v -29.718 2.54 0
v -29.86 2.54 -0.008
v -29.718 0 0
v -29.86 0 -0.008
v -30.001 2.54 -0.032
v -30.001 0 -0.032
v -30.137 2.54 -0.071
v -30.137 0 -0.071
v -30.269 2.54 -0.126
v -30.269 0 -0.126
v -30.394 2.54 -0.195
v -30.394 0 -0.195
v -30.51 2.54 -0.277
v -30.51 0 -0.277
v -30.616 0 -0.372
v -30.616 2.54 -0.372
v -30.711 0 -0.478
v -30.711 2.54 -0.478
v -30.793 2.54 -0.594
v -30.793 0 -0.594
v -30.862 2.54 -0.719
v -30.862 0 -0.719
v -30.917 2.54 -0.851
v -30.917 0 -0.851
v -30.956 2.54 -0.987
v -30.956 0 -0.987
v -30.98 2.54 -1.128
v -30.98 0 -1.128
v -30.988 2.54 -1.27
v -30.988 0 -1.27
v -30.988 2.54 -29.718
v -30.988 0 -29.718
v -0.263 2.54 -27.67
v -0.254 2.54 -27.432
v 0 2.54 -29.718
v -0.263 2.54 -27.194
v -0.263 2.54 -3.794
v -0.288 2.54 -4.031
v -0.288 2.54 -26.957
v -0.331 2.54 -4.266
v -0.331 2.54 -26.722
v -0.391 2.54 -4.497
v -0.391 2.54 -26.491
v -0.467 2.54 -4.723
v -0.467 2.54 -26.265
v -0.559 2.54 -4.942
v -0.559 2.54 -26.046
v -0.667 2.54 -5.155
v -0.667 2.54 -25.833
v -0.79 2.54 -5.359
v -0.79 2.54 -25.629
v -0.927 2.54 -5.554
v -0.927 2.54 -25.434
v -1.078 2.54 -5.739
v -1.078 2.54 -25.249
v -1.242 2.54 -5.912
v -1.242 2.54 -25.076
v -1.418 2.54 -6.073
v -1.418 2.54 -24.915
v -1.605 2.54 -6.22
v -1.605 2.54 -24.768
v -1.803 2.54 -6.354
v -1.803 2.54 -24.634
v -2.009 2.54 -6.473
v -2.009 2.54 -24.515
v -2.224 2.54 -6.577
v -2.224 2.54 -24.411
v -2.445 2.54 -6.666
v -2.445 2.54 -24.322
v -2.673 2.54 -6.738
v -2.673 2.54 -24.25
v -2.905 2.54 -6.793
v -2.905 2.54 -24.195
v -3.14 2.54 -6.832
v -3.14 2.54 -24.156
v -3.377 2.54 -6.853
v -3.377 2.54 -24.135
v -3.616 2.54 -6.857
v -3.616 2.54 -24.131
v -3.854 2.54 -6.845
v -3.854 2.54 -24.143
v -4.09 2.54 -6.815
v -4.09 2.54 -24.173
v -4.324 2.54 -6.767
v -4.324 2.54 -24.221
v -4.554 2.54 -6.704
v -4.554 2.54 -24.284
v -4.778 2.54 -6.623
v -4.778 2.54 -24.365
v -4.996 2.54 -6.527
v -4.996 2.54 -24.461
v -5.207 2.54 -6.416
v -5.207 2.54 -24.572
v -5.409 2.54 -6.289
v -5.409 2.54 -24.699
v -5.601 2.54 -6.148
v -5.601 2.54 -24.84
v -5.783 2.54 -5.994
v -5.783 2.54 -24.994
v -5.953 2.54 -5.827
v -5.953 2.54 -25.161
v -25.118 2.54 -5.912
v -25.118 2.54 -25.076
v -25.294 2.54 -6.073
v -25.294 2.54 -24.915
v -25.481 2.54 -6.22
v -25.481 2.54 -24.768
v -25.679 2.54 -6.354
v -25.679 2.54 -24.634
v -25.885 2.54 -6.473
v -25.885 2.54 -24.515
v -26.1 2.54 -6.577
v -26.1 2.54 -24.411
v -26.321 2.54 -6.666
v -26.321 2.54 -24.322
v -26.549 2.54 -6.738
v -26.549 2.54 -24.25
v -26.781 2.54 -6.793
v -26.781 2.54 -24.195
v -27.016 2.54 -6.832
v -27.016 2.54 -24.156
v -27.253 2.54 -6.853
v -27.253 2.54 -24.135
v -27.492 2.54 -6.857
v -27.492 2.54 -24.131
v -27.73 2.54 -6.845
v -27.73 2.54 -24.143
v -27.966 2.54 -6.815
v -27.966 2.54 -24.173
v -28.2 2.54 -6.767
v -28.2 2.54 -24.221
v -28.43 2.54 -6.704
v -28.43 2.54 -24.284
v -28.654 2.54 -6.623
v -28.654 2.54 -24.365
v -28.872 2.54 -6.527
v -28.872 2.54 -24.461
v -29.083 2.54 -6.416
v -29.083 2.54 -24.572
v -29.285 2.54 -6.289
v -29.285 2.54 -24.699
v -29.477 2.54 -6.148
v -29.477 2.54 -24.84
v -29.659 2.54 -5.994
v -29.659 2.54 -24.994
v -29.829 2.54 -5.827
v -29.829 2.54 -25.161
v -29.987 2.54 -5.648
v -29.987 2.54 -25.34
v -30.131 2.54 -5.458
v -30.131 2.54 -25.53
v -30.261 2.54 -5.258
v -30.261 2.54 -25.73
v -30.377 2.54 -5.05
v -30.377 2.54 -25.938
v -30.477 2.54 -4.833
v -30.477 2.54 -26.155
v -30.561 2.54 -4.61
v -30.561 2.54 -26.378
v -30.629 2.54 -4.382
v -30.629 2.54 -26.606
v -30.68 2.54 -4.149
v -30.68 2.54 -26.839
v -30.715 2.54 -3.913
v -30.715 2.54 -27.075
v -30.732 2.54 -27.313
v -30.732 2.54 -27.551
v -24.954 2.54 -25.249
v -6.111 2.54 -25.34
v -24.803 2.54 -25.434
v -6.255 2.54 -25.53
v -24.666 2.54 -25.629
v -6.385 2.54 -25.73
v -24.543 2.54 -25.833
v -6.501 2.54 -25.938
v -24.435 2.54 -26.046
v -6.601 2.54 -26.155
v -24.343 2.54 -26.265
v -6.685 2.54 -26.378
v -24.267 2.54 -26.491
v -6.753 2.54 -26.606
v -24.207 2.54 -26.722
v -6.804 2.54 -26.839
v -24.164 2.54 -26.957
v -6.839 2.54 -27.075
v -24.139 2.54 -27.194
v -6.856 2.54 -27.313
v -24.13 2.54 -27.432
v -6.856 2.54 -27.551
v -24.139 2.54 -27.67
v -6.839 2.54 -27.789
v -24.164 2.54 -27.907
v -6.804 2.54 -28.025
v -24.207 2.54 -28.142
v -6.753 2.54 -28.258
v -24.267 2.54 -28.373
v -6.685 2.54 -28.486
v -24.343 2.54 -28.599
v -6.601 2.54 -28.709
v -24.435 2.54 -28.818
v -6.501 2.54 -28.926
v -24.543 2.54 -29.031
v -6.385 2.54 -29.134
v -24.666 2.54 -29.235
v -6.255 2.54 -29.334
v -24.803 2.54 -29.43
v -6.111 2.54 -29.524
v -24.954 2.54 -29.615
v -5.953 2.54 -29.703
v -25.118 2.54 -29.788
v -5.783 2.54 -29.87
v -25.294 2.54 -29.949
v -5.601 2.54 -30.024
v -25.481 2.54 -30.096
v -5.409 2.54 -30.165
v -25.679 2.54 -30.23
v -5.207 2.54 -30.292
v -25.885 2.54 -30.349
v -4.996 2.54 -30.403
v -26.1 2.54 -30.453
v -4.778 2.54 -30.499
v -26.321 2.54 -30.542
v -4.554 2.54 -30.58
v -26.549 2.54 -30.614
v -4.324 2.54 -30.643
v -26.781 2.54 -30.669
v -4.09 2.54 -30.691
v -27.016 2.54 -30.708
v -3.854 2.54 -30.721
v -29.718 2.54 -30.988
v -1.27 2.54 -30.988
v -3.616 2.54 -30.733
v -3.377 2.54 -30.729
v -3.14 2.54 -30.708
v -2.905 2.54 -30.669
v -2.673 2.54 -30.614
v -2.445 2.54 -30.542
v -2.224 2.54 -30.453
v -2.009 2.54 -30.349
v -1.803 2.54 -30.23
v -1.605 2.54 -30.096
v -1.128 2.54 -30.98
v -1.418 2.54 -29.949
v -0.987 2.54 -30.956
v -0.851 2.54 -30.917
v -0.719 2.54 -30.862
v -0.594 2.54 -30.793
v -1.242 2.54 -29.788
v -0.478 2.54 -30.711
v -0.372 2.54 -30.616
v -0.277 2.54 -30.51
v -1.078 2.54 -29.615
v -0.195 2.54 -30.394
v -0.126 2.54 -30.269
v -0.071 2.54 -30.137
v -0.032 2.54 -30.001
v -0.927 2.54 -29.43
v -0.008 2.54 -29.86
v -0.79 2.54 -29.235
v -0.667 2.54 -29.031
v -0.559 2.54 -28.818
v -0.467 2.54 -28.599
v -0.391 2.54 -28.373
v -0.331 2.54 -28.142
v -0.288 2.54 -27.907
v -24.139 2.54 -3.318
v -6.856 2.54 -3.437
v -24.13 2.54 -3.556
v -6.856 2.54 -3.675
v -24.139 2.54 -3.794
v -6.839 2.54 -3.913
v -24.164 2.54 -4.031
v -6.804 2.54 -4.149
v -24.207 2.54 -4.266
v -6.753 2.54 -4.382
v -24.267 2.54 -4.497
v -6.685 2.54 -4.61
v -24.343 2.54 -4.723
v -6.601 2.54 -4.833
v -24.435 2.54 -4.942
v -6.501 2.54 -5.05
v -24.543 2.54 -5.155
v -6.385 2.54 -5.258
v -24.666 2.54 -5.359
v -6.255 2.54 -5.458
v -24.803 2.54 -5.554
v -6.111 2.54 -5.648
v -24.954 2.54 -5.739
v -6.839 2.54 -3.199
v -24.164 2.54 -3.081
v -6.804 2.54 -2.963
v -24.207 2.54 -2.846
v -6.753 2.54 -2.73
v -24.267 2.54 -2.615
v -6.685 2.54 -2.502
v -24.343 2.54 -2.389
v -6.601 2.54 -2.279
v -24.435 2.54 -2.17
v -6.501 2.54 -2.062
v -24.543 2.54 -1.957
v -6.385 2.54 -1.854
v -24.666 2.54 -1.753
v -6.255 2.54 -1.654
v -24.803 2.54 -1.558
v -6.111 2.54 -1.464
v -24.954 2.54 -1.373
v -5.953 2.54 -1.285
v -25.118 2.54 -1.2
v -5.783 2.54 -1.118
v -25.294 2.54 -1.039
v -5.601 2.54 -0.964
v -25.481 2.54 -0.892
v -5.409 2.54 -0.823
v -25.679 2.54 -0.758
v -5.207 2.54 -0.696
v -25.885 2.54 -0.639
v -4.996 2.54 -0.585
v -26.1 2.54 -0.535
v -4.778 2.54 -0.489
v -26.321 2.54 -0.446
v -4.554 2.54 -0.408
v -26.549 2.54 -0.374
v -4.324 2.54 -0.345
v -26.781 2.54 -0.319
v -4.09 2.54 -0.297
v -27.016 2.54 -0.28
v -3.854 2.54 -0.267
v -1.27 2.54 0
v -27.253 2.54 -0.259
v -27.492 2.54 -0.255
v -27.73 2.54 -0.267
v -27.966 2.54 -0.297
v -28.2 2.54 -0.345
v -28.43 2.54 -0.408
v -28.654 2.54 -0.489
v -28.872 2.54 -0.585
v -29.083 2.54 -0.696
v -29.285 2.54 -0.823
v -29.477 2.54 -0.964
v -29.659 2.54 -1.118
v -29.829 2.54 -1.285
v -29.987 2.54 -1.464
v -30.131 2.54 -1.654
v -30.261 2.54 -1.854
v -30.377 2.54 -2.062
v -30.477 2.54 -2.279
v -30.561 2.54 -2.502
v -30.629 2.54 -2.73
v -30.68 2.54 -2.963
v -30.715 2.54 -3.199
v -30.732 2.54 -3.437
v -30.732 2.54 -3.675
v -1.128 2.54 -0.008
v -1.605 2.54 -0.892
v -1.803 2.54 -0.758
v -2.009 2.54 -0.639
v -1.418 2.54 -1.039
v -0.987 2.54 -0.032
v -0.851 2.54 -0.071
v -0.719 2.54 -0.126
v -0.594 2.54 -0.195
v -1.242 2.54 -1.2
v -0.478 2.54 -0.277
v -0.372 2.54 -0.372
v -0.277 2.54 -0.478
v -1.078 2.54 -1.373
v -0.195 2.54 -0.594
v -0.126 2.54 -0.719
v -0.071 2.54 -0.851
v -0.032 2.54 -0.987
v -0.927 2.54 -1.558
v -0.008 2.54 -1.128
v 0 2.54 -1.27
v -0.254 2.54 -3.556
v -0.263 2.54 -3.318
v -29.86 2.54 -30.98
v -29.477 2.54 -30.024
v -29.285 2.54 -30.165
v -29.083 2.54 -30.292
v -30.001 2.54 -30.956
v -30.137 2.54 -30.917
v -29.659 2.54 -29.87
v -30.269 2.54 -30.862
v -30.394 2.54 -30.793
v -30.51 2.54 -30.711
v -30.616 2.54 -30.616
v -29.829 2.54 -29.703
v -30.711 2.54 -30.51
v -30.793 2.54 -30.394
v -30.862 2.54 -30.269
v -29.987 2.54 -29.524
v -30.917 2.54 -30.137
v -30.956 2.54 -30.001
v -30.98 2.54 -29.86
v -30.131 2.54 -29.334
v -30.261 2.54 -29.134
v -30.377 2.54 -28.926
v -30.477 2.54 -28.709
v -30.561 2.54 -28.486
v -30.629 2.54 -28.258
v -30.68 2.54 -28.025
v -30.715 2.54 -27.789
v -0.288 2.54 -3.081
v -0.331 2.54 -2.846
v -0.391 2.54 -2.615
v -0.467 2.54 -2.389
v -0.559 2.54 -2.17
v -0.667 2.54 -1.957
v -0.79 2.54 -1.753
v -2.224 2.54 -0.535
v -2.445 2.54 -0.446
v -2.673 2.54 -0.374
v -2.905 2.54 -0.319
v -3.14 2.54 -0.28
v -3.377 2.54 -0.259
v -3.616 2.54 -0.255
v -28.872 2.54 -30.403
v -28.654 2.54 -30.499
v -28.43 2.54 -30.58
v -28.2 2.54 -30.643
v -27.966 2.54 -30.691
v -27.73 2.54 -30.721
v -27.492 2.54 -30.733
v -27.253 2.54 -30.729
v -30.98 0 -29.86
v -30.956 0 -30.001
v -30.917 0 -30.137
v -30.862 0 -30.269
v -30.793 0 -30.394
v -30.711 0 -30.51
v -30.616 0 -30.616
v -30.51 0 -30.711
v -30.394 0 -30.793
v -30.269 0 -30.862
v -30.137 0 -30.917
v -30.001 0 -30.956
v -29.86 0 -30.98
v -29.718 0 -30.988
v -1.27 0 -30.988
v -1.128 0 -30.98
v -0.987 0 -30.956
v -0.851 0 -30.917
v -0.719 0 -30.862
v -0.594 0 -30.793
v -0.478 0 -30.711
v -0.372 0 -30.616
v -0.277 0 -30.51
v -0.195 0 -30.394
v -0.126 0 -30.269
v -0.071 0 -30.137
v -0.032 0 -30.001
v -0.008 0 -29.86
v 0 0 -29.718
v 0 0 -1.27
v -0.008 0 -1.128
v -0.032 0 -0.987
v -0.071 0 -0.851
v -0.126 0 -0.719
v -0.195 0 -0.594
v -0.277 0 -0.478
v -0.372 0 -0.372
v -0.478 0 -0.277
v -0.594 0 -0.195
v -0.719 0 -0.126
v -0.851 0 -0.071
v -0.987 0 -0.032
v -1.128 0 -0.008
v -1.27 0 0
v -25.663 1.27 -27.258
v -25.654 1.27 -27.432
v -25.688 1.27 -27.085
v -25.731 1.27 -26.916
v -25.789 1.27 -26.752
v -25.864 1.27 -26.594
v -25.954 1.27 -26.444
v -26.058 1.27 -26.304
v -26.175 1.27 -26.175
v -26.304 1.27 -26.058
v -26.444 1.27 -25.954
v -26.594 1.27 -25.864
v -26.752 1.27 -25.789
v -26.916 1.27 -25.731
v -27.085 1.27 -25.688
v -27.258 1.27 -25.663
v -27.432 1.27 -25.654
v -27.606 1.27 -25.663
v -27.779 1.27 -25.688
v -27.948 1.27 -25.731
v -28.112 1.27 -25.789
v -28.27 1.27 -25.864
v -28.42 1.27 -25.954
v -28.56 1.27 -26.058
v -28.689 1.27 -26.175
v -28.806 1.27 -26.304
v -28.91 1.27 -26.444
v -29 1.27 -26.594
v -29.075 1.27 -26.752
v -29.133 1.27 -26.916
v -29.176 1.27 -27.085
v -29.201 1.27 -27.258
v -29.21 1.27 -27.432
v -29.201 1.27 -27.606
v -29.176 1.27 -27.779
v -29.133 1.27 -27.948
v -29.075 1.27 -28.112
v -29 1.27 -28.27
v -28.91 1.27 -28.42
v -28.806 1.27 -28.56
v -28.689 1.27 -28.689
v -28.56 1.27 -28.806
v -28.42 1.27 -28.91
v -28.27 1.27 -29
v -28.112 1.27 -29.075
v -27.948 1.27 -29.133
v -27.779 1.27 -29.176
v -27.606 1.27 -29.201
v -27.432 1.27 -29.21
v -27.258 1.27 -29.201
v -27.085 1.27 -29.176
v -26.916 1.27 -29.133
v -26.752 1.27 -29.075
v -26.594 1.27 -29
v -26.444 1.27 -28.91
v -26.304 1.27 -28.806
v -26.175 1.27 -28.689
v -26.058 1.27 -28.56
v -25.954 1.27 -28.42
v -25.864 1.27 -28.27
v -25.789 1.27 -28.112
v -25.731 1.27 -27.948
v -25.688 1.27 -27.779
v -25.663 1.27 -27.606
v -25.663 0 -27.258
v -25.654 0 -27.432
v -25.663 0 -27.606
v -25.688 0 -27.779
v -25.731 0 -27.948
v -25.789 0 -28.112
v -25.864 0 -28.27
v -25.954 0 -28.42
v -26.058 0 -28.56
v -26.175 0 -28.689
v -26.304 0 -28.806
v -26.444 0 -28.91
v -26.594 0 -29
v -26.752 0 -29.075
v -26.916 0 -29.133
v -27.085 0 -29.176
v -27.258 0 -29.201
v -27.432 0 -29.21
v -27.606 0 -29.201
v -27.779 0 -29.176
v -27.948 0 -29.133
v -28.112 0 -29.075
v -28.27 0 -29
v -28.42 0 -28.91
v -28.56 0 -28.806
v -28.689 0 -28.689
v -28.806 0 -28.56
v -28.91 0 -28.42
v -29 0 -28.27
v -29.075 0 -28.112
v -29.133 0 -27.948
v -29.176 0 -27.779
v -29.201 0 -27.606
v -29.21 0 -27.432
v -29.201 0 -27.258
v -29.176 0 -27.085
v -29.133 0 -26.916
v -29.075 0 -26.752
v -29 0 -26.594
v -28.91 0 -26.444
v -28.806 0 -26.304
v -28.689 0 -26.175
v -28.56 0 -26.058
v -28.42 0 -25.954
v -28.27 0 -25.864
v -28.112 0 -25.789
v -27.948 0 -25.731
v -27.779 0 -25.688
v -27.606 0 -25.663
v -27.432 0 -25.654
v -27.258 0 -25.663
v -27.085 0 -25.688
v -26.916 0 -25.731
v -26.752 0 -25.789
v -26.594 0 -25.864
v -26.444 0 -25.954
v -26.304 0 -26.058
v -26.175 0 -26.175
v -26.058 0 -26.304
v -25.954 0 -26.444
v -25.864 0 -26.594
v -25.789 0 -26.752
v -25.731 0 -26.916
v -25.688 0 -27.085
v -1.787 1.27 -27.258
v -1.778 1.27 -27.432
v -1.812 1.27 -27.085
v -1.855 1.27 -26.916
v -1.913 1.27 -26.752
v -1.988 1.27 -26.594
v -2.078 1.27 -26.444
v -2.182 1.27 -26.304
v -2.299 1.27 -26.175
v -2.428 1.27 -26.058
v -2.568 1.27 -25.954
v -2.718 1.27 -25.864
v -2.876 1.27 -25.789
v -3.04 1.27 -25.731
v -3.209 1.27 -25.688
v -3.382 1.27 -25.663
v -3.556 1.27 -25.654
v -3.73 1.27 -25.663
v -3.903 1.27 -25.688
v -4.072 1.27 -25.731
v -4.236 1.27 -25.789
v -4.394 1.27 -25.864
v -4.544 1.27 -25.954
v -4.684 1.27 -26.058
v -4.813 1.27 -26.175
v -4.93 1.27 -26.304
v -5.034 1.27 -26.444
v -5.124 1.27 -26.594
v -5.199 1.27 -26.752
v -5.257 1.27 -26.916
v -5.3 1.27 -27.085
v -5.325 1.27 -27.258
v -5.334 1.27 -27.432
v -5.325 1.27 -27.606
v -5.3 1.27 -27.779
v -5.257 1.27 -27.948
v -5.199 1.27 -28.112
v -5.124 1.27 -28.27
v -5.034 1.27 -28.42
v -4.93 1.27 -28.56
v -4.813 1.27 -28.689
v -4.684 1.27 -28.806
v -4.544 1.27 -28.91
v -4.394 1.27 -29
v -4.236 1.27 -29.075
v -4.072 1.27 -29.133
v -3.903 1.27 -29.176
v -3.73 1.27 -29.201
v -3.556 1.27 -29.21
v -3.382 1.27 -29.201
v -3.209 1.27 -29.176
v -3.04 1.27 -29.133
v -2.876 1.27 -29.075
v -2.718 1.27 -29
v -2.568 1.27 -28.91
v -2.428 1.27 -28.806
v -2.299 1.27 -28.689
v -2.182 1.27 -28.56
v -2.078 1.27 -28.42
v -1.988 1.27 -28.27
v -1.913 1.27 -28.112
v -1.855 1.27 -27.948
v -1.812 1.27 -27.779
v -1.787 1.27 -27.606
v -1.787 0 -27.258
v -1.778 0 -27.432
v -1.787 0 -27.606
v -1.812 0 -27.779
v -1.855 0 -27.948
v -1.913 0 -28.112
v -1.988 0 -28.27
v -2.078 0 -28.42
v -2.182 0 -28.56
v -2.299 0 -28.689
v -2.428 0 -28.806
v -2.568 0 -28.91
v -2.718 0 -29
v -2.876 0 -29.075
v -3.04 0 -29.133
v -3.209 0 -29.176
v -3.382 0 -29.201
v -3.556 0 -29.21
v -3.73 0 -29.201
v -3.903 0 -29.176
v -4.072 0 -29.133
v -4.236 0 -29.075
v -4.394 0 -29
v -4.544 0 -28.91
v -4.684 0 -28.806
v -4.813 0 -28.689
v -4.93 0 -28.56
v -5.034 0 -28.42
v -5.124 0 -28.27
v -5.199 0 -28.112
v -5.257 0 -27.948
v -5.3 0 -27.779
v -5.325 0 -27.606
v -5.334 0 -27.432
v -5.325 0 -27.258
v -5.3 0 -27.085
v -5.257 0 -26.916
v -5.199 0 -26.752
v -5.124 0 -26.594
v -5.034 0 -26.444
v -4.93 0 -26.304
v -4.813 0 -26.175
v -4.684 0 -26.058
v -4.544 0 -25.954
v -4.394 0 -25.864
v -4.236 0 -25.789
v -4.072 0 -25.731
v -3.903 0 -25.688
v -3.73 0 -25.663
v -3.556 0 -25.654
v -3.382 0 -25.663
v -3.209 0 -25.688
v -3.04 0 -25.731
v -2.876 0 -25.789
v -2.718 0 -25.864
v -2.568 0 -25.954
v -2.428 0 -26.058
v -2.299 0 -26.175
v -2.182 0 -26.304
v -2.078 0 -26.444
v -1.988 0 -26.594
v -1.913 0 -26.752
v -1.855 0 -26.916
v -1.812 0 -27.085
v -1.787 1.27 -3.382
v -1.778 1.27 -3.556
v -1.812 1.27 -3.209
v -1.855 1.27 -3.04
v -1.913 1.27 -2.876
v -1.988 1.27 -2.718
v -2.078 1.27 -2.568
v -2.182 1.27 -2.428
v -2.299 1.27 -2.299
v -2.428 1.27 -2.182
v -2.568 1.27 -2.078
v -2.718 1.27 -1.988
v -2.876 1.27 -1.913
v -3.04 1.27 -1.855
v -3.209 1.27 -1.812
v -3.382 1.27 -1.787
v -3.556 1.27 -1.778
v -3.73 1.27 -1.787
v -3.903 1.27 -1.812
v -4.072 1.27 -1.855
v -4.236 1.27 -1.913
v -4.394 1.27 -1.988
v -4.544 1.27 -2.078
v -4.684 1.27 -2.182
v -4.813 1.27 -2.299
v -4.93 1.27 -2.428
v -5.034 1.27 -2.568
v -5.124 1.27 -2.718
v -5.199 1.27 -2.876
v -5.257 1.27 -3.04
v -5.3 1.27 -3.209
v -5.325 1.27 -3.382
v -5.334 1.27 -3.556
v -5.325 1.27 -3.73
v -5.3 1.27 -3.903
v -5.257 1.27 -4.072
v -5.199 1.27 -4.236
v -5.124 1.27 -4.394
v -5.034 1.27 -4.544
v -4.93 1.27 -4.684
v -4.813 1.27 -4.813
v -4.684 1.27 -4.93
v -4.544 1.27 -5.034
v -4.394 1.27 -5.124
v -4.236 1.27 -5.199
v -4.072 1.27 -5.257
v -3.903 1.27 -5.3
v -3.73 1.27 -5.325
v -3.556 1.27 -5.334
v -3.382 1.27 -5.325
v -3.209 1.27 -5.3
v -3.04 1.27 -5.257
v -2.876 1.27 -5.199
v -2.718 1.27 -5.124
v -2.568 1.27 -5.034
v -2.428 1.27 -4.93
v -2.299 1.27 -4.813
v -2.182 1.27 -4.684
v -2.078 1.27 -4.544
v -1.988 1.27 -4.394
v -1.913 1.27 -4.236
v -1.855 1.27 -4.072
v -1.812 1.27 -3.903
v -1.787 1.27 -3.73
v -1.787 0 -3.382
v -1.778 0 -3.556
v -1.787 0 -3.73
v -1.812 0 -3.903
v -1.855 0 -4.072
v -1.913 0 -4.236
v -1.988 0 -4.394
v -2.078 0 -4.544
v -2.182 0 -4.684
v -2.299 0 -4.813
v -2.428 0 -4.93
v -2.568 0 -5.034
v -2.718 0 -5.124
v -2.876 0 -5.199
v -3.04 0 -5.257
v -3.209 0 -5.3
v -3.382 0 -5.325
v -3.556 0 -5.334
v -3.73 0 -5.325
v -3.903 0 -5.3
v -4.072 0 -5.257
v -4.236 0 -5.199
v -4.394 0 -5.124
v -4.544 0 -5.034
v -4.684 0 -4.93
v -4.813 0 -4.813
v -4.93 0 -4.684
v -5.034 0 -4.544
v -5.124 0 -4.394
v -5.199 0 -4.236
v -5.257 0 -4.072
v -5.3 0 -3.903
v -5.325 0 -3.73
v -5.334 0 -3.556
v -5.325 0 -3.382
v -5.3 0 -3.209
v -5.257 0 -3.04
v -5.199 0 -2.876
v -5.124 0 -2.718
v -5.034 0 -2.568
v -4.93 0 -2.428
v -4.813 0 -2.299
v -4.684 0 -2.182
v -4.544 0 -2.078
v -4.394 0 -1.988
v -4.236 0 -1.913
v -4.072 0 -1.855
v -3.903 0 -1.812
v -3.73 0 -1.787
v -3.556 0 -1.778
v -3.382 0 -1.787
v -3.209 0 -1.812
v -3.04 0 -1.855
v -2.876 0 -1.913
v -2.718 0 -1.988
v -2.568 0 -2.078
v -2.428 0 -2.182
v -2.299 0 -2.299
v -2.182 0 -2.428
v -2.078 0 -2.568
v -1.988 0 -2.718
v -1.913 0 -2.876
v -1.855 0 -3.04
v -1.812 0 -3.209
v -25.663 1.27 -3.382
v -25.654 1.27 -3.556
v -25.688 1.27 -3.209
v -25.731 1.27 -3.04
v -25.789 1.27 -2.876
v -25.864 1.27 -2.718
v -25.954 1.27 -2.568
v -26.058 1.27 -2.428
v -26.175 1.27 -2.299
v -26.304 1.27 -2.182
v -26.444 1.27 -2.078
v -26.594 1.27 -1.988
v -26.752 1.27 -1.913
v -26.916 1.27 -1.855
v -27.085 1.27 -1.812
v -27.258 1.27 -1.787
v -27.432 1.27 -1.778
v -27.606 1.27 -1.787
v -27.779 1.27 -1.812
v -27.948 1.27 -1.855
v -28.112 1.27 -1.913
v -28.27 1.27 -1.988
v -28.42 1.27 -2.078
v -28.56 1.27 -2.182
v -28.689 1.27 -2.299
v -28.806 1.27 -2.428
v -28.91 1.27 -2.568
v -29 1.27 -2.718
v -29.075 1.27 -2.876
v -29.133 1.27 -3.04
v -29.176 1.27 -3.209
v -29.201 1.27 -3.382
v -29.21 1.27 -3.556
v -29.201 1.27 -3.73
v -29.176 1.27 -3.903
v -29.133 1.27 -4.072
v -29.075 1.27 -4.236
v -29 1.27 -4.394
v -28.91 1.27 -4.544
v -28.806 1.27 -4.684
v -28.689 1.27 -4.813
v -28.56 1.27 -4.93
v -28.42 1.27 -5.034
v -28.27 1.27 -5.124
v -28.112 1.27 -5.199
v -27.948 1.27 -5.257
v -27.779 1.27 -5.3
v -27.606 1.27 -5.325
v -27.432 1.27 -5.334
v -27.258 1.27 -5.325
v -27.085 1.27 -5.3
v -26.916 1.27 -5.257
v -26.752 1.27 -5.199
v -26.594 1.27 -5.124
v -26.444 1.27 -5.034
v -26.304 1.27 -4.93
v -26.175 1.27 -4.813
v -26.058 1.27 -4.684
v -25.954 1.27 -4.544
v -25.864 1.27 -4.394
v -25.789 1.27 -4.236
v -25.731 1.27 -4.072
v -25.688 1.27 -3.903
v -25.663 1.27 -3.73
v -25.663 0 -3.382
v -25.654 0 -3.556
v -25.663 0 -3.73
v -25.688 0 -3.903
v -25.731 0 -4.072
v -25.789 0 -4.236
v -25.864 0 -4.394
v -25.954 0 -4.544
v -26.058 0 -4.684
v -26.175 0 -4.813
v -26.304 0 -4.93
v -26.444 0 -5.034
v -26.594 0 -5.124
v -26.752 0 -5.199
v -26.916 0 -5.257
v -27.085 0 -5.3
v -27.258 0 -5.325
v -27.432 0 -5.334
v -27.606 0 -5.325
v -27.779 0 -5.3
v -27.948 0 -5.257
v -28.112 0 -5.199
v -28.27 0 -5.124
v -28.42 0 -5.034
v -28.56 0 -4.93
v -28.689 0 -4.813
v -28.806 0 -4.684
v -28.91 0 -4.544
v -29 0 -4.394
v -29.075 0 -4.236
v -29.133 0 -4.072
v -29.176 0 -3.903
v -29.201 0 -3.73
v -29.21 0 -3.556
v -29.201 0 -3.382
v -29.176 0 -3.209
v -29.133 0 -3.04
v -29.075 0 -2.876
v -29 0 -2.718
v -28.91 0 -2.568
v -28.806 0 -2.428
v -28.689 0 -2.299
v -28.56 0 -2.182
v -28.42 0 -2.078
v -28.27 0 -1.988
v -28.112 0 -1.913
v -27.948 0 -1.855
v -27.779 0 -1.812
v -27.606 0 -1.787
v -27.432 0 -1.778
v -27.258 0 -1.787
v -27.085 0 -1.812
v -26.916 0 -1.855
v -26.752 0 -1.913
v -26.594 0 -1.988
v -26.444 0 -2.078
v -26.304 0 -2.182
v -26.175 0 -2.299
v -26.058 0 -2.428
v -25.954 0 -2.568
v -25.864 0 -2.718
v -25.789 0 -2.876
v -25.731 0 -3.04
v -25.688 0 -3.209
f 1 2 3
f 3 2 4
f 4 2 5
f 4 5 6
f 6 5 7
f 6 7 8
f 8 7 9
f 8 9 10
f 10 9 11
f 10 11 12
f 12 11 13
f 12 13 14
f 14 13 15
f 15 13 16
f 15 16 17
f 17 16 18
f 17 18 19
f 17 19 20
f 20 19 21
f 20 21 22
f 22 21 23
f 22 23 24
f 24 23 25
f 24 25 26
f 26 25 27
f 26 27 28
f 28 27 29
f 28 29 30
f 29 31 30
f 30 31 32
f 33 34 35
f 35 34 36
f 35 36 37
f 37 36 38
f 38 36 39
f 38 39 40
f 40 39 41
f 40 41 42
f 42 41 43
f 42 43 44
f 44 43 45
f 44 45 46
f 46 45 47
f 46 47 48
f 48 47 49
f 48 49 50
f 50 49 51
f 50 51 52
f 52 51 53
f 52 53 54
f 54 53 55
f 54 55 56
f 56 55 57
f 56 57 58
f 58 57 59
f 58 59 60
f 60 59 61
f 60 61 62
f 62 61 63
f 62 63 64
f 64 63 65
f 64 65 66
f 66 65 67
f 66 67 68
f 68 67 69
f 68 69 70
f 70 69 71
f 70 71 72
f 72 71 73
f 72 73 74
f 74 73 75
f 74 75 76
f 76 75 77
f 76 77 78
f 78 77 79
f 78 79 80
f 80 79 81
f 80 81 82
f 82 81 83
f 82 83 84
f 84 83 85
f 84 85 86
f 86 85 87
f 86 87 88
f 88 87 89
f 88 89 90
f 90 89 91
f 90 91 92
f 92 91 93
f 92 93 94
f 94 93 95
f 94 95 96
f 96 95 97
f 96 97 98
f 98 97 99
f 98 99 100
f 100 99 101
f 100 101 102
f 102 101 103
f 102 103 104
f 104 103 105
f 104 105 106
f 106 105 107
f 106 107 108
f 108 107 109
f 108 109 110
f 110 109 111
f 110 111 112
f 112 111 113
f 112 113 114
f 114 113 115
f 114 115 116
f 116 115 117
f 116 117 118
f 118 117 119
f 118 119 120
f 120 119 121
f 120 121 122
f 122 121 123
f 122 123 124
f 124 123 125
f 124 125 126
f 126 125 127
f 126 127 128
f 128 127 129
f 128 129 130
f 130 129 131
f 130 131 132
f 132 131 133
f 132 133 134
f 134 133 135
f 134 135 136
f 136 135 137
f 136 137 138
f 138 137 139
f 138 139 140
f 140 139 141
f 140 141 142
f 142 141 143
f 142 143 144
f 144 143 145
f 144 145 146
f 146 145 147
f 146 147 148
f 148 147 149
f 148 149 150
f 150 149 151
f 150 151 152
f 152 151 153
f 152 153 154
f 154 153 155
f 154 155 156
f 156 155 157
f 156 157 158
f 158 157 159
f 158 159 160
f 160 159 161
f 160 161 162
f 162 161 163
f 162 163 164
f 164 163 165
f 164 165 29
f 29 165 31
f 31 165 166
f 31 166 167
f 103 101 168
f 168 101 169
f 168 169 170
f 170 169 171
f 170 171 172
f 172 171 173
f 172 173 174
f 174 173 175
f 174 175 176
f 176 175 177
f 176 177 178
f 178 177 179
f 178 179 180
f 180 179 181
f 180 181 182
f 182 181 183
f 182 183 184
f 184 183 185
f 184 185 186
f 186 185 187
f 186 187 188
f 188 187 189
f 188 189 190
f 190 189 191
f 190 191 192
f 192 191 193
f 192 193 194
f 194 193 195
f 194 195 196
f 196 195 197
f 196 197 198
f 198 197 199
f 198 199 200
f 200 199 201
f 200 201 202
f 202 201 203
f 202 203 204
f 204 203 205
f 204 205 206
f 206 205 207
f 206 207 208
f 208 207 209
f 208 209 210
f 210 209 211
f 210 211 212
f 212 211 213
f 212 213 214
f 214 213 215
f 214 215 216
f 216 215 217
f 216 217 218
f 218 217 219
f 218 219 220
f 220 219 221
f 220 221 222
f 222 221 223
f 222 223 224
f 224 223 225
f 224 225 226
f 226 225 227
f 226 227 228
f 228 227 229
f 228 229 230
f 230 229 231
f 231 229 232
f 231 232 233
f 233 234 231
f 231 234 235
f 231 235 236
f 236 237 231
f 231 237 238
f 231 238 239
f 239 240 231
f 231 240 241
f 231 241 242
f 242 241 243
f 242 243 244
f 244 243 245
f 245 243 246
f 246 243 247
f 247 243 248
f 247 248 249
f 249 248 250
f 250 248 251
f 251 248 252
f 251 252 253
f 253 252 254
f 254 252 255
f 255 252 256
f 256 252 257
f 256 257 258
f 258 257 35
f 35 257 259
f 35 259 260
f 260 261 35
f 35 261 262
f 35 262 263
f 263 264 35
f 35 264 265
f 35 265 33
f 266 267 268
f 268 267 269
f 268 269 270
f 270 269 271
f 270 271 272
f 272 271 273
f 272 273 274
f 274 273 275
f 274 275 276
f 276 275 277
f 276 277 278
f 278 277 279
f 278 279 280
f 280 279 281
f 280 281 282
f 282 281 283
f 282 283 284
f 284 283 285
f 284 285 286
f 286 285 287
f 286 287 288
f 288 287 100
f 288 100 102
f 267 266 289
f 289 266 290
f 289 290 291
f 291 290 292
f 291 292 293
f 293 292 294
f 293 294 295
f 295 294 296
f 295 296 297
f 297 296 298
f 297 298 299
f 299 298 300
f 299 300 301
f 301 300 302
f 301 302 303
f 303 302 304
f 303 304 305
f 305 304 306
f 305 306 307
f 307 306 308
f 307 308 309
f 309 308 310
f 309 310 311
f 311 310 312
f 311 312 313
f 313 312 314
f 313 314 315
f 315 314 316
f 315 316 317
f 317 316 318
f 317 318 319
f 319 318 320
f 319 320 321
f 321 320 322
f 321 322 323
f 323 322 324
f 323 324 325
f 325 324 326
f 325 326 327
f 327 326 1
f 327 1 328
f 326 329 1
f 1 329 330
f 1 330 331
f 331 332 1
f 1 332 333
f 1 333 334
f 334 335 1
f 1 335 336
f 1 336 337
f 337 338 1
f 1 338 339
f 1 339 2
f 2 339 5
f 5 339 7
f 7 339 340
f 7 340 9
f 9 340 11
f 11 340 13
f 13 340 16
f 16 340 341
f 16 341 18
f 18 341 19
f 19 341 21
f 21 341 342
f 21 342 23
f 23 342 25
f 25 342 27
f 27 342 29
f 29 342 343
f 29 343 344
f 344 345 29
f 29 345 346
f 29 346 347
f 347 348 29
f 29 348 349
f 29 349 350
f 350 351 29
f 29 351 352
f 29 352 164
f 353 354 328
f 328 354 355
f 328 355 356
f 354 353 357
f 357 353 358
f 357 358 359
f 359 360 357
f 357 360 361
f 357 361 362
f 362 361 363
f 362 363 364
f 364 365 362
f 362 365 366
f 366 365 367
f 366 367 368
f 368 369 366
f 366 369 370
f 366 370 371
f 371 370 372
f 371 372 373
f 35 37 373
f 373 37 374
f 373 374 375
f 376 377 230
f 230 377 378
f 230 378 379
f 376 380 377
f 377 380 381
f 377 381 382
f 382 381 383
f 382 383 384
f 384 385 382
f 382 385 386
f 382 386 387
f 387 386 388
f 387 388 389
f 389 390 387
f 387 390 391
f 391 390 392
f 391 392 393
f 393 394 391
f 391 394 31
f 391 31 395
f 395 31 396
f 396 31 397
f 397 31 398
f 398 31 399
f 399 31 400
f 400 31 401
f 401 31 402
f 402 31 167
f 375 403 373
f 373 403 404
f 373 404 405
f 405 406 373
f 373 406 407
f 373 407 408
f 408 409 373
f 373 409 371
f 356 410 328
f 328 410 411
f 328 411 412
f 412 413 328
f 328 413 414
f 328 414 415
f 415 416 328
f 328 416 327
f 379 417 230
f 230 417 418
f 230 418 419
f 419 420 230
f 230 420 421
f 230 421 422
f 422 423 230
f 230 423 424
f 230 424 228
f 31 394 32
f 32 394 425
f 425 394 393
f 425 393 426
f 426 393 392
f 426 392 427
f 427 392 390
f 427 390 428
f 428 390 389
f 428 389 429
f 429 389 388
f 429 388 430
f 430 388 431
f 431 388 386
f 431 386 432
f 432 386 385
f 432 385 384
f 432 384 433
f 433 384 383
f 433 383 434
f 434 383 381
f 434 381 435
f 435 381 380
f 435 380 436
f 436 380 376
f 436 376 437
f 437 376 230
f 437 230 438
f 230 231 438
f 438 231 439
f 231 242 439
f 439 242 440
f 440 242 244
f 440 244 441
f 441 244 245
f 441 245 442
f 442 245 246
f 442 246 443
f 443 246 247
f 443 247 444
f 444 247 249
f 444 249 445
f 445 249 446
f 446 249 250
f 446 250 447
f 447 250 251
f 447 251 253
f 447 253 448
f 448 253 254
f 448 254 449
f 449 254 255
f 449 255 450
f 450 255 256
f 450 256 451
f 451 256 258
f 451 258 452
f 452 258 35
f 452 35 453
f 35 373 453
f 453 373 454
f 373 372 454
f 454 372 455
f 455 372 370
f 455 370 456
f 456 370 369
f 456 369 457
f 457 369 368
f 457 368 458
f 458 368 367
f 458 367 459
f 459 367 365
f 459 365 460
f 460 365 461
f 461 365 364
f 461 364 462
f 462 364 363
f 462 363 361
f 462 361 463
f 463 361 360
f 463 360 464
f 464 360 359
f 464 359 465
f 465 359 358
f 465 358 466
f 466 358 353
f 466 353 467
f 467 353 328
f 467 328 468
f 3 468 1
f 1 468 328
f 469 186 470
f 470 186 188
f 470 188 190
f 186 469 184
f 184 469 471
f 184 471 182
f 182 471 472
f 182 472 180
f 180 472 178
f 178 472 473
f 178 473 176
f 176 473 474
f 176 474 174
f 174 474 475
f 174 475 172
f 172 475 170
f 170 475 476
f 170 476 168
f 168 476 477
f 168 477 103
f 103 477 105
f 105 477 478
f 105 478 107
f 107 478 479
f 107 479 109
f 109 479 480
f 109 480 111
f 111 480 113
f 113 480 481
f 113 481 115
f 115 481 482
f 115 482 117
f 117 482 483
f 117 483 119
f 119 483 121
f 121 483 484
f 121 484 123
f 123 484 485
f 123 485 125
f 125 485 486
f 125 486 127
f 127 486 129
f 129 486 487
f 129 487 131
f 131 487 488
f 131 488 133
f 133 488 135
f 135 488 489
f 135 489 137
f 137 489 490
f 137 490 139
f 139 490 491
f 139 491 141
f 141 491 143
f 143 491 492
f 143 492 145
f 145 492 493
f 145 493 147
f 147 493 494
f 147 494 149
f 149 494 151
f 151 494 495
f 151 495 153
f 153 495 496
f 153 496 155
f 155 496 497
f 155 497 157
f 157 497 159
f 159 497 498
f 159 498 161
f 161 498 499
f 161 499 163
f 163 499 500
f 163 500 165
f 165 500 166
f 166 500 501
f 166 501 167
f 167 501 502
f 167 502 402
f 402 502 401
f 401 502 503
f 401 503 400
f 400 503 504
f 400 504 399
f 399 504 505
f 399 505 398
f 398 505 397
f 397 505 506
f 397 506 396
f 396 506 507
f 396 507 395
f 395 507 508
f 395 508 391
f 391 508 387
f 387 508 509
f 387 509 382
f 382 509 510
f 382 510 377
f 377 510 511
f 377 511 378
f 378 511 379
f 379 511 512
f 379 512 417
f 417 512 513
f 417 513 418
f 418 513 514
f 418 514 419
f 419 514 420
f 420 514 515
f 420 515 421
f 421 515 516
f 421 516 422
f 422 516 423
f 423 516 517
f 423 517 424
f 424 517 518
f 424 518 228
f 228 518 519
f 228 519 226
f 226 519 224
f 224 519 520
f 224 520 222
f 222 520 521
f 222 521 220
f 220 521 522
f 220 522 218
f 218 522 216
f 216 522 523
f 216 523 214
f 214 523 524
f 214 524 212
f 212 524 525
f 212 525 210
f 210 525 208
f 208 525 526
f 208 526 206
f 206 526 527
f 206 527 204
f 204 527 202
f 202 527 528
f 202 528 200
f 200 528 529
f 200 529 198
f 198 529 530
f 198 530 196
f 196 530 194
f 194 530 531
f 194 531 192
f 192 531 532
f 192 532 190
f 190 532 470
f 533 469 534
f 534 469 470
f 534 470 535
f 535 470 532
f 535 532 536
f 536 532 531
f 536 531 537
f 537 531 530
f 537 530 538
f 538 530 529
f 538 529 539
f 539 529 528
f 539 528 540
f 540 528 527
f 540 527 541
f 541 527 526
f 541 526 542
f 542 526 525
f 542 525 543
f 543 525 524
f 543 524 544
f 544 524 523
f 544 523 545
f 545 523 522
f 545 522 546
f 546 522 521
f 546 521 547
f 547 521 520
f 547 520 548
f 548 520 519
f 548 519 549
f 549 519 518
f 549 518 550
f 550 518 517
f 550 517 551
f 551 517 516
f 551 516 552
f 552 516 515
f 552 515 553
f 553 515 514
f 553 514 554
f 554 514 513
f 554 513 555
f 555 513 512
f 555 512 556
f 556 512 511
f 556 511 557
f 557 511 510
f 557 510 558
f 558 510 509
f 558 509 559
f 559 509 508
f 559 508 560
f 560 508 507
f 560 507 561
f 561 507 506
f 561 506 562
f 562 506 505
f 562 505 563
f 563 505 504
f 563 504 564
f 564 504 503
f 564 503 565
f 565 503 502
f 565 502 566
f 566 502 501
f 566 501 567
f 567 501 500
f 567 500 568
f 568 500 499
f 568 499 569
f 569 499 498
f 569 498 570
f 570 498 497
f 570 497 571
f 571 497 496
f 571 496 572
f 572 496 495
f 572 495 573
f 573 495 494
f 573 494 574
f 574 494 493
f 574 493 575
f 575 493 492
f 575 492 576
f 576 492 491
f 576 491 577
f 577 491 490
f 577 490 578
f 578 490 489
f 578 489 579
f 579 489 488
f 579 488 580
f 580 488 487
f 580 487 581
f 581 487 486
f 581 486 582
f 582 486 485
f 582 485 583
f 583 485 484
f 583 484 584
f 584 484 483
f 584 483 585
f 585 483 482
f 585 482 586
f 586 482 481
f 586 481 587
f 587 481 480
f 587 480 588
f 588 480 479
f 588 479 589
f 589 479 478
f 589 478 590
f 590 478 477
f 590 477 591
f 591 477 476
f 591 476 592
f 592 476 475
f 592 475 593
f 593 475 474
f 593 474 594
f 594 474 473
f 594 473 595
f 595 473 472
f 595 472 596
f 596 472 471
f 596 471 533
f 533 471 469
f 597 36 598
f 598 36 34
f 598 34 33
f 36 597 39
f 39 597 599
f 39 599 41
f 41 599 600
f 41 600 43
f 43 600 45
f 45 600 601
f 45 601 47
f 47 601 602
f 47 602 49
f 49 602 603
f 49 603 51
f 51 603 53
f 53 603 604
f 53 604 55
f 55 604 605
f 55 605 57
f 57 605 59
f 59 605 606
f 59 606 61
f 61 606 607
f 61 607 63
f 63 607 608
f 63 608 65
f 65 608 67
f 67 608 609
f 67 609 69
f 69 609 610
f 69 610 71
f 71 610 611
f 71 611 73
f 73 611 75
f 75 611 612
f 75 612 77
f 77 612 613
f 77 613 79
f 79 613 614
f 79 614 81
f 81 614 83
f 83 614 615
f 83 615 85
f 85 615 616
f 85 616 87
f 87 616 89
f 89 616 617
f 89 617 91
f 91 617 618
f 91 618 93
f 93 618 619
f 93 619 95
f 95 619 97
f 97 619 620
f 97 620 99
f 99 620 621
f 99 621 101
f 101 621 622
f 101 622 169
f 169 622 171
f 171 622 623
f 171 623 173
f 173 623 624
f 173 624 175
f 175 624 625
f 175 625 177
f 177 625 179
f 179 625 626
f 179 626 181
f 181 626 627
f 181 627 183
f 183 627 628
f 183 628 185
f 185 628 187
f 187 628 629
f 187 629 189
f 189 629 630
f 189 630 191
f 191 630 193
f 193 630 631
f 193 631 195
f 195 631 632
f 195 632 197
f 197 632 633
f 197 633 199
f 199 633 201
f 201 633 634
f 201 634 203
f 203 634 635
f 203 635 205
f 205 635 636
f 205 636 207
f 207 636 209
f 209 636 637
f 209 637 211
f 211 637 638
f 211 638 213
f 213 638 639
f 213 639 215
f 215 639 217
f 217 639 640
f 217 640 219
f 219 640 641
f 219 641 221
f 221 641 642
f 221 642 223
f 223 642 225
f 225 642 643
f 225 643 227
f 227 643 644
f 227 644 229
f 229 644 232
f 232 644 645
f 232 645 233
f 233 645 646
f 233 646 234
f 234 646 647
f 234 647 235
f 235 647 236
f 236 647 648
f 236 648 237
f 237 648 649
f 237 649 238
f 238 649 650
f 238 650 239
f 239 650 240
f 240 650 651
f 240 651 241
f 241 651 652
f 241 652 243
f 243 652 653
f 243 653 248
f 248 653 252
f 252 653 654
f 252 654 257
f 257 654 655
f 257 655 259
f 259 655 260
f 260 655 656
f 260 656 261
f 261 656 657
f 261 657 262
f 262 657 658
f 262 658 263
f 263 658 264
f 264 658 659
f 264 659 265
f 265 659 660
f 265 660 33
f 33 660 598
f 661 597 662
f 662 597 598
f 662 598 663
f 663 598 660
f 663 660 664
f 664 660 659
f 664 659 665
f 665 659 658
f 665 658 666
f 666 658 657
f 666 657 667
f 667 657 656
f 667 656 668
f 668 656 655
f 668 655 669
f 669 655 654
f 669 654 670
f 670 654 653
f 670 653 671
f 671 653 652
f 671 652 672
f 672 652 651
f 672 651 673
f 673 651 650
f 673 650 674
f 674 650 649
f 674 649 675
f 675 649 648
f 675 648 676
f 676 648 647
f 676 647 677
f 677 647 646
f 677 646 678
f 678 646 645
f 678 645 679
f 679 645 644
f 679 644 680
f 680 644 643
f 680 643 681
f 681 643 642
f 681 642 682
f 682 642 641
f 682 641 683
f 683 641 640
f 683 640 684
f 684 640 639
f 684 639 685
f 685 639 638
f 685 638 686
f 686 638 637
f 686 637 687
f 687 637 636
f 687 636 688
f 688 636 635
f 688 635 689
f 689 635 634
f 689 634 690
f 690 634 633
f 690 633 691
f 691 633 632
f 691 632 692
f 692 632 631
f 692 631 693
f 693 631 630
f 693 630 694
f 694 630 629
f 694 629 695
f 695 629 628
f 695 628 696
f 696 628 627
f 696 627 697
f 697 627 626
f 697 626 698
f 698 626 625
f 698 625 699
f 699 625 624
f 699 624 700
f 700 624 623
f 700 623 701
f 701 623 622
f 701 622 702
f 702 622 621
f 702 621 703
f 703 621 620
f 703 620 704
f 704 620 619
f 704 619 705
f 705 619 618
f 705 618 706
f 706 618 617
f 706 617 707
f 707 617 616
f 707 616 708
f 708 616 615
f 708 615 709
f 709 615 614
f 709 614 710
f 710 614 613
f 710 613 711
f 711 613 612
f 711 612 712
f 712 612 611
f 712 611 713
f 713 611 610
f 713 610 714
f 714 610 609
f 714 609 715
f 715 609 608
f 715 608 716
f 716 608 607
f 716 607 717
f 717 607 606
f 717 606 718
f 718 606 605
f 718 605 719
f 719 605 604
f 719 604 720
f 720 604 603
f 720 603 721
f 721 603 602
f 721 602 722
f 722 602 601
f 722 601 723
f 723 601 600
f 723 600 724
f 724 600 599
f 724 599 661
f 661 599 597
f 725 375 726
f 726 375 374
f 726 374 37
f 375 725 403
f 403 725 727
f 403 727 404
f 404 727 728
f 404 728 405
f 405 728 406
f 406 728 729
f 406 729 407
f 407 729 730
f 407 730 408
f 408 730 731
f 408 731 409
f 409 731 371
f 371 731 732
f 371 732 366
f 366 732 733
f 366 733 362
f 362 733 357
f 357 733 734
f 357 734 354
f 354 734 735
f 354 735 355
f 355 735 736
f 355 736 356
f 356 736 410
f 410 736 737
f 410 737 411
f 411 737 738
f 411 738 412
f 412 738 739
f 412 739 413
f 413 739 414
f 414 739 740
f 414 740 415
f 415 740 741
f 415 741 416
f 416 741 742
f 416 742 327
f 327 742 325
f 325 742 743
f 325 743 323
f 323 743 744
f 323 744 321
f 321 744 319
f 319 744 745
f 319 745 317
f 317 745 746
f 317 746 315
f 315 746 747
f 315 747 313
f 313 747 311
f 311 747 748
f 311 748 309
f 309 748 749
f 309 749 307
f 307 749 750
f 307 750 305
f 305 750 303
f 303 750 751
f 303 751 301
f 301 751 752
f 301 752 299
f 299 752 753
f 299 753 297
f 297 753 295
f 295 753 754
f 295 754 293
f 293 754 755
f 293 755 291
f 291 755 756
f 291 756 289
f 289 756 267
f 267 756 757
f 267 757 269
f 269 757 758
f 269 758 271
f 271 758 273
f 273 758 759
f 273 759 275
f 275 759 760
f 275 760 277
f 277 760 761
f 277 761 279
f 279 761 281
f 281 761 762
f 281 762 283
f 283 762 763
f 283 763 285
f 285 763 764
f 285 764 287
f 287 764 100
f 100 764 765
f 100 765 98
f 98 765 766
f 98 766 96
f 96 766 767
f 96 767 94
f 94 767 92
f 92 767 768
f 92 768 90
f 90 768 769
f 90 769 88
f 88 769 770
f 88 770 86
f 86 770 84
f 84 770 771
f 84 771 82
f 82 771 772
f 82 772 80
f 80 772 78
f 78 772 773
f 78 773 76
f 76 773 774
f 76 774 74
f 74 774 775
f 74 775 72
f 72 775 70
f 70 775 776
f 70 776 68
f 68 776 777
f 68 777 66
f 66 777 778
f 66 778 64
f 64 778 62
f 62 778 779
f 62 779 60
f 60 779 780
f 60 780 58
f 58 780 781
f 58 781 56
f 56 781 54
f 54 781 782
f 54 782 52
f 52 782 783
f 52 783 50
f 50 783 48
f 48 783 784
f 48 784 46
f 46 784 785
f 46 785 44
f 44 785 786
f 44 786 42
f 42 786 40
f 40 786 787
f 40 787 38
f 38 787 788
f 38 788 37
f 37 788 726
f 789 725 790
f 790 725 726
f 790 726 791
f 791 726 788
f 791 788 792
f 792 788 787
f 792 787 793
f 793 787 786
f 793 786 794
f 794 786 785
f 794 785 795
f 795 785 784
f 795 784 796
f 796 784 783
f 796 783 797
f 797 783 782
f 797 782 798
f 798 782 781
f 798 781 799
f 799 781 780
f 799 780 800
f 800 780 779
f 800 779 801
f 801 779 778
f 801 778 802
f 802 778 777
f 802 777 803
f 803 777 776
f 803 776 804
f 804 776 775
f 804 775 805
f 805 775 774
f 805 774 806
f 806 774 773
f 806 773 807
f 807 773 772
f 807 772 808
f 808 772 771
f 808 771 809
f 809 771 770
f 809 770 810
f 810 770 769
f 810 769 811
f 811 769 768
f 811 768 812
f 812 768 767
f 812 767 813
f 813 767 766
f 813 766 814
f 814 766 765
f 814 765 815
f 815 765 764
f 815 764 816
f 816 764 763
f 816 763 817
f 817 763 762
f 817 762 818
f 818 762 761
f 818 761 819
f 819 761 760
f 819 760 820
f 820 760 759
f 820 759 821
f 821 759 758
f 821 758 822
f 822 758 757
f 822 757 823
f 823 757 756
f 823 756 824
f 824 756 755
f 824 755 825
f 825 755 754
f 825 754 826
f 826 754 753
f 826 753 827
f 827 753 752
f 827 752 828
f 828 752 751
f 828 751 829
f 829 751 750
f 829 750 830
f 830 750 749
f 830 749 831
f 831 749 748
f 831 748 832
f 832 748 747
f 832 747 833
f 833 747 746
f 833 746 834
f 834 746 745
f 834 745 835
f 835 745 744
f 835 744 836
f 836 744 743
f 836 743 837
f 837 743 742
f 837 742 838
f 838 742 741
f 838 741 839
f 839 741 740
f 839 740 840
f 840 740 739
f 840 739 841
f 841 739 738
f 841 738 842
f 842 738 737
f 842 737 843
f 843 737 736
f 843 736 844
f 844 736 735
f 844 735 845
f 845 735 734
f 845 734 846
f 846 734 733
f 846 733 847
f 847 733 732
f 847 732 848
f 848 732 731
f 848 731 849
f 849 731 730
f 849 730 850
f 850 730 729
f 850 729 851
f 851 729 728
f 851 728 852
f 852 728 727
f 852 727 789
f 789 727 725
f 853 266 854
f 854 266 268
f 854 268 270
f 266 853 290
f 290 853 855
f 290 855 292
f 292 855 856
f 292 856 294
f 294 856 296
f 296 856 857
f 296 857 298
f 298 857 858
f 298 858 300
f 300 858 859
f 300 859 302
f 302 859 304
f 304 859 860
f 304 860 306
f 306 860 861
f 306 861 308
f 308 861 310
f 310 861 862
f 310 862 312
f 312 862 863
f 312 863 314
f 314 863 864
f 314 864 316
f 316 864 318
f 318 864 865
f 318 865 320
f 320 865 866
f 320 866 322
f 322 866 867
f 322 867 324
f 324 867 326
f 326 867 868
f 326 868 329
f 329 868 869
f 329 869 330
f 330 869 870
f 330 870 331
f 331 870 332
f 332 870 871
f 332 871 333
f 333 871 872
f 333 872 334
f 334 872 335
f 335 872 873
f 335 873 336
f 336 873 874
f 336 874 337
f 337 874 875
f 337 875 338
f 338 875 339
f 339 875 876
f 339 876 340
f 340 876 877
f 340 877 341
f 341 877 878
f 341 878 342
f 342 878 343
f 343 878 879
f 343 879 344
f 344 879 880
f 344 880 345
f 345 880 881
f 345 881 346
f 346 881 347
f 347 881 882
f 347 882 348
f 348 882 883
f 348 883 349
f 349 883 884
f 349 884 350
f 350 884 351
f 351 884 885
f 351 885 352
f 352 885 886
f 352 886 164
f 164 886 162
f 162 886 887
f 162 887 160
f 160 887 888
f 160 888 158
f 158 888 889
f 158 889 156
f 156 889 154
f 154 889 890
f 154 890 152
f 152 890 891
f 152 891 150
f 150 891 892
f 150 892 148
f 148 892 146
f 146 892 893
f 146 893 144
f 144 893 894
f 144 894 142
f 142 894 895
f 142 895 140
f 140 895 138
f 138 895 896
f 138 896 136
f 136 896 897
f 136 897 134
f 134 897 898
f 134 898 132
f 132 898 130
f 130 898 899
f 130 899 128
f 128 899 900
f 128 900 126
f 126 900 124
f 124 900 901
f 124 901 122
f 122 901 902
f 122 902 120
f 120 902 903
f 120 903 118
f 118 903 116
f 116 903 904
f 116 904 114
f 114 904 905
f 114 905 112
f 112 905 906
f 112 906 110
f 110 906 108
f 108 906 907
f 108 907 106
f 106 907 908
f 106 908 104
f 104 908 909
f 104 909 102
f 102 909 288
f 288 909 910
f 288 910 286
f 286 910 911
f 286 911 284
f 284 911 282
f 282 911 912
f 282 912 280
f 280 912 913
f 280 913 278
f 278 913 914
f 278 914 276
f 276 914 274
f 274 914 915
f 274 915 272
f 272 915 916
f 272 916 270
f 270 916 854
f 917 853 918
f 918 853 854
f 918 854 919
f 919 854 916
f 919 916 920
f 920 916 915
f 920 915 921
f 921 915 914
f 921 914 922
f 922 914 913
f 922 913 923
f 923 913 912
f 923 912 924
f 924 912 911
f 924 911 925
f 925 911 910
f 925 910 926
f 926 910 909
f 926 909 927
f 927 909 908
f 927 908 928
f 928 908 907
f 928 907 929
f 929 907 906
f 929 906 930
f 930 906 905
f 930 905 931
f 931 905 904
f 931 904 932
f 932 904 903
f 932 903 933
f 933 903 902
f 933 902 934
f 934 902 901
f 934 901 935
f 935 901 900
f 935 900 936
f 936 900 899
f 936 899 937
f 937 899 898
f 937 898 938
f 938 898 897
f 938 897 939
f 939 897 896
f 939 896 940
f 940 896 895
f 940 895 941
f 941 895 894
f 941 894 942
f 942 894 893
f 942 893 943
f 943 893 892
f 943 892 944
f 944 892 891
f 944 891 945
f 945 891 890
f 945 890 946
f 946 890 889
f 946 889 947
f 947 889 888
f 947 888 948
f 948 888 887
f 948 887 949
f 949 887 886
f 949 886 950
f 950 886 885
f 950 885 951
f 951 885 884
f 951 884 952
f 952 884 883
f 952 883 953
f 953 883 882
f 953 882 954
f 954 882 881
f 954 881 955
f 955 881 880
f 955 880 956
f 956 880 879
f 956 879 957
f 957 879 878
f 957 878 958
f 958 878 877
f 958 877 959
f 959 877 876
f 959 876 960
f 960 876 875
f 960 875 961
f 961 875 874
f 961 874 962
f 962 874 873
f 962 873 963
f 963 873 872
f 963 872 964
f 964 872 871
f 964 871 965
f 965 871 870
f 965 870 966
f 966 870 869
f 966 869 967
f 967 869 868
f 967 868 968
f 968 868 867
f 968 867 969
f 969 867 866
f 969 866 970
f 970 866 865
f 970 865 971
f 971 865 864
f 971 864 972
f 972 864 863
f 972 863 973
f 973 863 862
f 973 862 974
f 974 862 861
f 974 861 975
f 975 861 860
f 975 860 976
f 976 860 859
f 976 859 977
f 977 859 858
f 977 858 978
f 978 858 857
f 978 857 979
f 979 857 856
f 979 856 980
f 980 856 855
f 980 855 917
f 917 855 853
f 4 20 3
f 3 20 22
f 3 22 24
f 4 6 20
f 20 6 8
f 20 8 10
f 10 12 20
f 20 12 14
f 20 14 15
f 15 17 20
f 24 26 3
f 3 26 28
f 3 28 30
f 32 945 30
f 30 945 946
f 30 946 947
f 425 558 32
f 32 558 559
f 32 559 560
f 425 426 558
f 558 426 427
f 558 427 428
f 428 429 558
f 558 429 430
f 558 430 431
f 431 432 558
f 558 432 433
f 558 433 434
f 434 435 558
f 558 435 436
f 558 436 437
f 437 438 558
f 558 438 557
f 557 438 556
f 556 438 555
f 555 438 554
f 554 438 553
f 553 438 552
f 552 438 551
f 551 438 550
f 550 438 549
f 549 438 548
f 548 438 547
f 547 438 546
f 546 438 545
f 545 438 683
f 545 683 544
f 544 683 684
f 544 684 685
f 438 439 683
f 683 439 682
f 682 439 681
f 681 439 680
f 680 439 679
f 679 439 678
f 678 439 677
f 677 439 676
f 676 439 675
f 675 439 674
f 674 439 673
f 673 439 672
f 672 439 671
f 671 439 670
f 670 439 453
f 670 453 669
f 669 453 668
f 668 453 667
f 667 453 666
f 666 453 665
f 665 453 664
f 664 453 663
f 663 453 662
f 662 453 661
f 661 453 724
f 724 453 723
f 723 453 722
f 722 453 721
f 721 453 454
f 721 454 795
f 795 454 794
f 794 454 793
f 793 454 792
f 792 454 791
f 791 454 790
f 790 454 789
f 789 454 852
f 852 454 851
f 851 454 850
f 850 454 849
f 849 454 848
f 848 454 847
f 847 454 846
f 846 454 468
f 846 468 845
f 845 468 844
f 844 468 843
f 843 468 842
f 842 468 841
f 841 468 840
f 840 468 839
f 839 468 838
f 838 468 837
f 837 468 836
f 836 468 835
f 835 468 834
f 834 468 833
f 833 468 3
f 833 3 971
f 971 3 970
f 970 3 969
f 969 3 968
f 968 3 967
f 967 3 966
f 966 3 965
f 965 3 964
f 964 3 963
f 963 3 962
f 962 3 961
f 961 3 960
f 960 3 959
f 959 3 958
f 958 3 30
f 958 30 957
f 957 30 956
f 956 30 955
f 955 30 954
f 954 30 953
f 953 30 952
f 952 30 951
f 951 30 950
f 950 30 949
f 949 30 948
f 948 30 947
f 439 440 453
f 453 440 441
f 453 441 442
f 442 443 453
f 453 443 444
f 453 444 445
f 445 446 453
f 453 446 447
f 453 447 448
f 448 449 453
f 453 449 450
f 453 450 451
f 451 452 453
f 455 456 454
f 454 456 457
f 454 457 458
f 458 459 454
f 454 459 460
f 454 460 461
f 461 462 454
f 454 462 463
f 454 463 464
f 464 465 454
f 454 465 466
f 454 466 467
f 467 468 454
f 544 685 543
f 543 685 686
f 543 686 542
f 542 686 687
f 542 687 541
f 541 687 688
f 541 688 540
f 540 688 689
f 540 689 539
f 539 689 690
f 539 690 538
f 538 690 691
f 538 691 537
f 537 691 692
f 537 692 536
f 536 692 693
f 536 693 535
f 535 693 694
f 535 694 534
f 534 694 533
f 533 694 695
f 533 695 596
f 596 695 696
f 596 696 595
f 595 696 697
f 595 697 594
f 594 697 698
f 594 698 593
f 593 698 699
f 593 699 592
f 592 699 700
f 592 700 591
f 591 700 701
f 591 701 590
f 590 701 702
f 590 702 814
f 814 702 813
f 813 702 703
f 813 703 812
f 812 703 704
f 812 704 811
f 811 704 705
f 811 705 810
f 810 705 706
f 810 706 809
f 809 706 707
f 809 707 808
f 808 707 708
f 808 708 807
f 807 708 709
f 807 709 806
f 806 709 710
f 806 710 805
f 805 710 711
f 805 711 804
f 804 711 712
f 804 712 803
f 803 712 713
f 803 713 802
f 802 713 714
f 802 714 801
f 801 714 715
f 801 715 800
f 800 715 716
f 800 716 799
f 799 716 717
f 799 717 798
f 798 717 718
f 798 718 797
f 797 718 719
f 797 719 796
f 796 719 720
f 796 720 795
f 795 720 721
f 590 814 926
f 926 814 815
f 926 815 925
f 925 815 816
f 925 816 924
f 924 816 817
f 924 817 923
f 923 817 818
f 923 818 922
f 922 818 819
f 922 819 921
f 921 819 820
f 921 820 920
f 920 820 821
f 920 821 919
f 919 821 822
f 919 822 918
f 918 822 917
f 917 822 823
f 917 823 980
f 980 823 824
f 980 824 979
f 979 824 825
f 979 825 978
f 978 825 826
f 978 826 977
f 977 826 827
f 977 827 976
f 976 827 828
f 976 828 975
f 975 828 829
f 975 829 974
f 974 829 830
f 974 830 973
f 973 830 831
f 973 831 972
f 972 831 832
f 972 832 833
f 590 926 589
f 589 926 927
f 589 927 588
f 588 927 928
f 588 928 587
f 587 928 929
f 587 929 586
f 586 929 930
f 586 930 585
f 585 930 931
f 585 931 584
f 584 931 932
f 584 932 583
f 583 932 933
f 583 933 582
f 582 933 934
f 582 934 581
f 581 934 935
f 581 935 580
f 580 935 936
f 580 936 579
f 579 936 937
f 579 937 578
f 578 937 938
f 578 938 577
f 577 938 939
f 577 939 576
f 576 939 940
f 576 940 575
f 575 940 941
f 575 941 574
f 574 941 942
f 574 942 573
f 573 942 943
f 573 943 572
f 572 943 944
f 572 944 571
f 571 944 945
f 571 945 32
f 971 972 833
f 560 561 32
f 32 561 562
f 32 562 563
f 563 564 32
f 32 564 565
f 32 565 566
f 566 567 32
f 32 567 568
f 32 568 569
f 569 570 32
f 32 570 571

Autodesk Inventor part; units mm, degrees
ref_plane "YZ Plane" through (0, 0, 0) normal (1, 0, 0) x (0, 1, 0)
ref_plane "XZ Plane" through (0, 0, 0) normal (0, 1, 0) x (-1, 0, 0)
ref_plane "XY Plane" through (0, 0, 0) normal (0, 0, 1) x (1, 0, 0)
sketch "Sketch1" plane through (0, 0, 0) normal (0, 1, 0) x (-1, 0, 0)
  line L0 (0, 0) -> (30.988, 0)
  line L1 (30.988, 0) -> (30.988, -30.988)
  line L2 (30.988, -30.988) -> (0, -30.988)
  line L3 (0, -30.988) -> (0, 0)
  dimension "d0" = 30.988
  dimension "d1" = 30.988
extrude "Extrusion1" add sketch "Sketch1" along normal blind 2.54
sketch "Sketch2" plane through (0, 2.54, 0) normal (0, 1, 0) x (1, 0, 0)
  circle A0 centre (-3.556, 3.556) radius 1.778
  line L0 (0, 0) -> (0, 30.988) projected
  line L1 (-30.988, 0) -> (0, 0) projected
  circle A1 centre (-27.432, 3.556) radius 1.778
  circle A2 centre (-3.556, 27.432) radius 1.778
  circle A3 centre (-27.432, 27.432) radius 1.778
  dimension "d4" = 3.556
  dimension "d5" = 3.556
  dimension "d6" = 3.556
  dimension "d9" = 23.876
  dimension "d12" = 23.876
extrude "Extrusion2" cut sketch "Sketch2" against normal blind 2.54
chamfer "Chamfer1" distance 1.524 distance2 1.27 1 edges at (-29.21, 2.54, -3.556) measured on face at (-11.9583, 2.54, -19.0803)
chamfer "Chamfer2" distance 1.524 distance2 1.27 1 edges at (-5.334, 2.54, -3.556) measured on face at (-18.6495, 2.54, -19.4172)
chamfer "Chamfer3" distance 1.524 distance2 1.27 1 edges at (-5.334, 2.54, -27.432) measured on face at (-18.6495, 2.54, -19.4172)
chamfer "Chamfer4" distance 1.524 distance2 1.27 1 edges at (-29.21, 2.54, -27.432) measured on face at (-19.2283, 2.54, -19.2563)
fillet "Fillet1" radius 1.27 4 edges at (0, 1.27, 0) (0, 1.27, -30.988) (-30.988, 1.27, -30.988) (-30.988, 1.27, 0)
properties part number "ForeAftMountPlate" material "ABS Plastic"
